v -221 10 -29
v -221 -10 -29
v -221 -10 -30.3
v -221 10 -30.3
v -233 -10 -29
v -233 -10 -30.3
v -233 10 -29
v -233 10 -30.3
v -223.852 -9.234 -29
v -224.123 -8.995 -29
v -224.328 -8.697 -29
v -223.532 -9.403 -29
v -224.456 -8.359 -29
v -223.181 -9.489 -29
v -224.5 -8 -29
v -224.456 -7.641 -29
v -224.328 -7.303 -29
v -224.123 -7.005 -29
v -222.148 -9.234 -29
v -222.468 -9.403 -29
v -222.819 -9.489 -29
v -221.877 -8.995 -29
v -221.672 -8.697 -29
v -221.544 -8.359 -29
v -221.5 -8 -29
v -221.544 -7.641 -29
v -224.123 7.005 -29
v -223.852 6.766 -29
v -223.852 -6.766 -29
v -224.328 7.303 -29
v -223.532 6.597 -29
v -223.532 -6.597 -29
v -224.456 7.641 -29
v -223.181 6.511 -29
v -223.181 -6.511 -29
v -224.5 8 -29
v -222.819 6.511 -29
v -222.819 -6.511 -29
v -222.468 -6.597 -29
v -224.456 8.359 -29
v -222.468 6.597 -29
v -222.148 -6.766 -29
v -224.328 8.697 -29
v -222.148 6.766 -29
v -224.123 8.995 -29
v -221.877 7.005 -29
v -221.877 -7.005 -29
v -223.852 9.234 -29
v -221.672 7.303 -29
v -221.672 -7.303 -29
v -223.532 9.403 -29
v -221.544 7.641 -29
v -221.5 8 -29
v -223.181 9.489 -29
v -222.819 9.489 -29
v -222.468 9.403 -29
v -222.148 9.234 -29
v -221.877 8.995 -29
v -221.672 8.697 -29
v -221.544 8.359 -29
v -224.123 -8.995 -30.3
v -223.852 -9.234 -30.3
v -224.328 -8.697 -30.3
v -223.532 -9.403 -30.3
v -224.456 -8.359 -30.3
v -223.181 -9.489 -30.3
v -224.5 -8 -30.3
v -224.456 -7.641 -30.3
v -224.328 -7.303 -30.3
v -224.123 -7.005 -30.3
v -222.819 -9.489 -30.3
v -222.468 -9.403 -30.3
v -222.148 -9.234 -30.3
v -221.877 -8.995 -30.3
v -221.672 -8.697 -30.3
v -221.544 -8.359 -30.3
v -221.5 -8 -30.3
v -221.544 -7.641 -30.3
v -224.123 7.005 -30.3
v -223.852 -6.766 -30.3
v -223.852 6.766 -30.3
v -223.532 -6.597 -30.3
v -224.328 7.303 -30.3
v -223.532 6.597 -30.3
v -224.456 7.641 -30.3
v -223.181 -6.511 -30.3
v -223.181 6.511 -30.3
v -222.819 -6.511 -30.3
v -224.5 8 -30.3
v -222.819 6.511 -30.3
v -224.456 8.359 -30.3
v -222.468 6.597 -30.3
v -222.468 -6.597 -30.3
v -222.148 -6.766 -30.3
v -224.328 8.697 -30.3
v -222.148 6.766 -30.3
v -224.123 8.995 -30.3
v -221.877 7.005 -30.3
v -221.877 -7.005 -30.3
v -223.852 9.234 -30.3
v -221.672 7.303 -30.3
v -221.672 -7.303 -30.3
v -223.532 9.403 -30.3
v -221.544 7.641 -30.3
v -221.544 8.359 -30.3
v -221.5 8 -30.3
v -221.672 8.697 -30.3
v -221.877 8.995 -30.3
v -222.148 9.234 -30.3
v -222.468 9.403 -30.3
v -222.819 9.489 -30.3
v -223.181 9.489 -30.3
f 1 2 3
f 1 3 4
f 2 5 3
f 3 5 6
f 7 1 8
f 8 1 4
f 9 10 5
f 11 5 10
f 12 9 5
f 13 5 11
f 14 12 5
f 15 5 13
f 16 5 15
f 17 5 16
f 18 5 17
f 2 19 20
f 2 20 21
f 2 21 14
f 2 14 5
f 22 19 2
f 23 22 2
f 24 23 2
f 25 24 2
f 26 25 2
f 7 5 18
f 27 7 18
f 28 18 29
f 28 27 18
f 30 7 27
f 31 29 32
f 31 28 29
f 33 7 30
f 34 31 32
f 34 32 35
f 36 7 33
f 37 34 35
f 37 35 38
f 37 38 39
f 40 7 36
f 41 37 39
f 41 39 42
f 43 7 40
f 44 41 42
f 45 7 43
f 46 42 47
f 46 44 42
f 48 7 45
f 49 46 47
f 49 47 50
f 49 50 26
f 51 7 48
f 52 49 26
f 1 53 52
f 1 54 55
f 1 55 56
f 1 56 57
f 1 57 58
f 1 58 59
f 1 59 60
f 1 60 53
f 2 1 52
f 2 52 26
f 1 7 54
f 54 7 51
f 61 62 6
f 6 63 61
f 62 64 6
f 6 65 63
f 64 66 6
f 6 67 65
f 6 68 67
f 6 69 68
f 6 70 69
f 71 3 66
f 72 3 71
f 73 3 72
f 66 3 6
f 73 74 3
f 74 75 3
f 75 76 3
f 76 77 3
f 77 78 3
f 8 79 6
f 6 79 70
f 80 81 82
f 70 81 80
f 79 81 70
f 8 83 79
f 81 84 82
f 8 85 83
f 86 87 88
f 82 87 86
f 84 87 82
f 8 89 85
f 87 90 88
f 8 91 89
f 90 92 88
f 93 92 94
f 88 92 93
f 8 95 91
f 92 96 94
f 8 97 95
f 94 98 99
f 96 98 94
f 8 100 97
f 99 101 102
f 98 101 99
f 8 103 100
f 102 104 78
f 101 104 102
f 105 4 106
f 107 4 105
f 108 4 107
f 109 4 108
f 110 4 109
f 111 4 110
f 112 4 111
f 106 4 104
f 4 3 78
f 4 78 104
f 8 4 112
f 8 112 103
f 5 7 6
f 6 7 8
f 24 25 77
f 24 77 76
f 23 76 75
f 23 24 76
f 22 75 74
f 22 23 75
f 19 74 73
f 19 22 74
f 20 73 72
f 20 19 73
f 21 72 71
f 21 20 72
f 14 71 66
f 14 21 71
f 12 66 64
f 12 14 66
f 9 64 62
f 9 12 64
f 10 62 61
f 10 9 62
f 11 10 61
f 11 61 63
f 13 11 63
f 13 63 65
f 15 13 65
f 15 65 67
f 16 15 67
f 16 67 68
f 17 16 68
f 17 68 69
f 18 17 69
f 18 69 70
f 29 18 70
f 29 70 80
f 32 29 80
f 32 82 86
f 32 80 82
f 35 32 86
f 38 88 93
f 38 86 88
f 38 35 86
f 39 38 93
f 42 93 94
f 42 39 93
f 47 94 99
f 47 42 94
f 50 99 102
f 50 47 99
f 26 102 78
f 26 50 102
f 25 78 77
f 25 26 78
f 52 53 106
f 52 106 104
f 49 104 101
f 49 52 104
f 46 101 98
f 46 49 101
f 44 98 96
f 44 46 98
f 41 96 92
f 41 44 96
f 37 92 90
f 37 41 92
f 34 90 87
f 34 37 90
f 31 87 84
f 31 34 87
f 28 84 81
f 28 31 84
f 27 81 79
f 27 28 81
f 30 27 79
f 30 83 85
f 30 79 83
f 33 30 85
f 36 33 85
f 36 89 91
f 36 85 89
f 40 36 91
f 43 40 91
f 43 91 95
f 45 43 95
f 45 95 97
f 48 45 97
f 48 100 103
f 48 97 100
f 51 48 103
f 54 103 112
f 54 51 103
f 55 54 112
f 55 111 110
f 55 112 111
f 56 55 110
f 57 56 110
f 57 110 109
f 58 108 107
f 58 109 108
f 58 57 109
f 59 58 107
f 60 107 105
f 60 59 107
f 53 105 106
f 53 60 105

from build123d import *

# Parameters (mm, degrees)
SKETCH253_W     = 12
SKETCH253_H     = 20
PAD126_DEPTH    = 1.3
SKETCH254_R     = 1.5
POCKET110_DEPTH = 3


with BuildPart() as part:
    # Sketch253 → Pad126 (new body)
    with BuildSketch(Plane(origin=(0, 0, -20), x_dir=(1, 0, 0), z_dir=(0, 0, -1))):
        with Locations((-11, 0)):
            Rectangle(SKETCH253_W, SKETCH253_H)
    extrude(amount=PAD126_DEPTH)

    # Sketch254 → Pocket110 (cut)
    with BuildSketch(Plane(origin=(0, 0, -20), x_dir=(1, 0, 0), z_dir=(0, 0, -1))):
        with Locations((-7, 8)):
            Circle(SKETCH254_R)
        with Locations((-7, -8)):
            Circle(SKETCH254_R)
    extrude(amount=POCKET110_DEPTH, mode=Mode.SUBTRACT)


with BuildPart() as part_1:
    # Body028 placement: moved
    add(part.part.moved(Location((-216, 0, -9))))


solid = part_1.part
